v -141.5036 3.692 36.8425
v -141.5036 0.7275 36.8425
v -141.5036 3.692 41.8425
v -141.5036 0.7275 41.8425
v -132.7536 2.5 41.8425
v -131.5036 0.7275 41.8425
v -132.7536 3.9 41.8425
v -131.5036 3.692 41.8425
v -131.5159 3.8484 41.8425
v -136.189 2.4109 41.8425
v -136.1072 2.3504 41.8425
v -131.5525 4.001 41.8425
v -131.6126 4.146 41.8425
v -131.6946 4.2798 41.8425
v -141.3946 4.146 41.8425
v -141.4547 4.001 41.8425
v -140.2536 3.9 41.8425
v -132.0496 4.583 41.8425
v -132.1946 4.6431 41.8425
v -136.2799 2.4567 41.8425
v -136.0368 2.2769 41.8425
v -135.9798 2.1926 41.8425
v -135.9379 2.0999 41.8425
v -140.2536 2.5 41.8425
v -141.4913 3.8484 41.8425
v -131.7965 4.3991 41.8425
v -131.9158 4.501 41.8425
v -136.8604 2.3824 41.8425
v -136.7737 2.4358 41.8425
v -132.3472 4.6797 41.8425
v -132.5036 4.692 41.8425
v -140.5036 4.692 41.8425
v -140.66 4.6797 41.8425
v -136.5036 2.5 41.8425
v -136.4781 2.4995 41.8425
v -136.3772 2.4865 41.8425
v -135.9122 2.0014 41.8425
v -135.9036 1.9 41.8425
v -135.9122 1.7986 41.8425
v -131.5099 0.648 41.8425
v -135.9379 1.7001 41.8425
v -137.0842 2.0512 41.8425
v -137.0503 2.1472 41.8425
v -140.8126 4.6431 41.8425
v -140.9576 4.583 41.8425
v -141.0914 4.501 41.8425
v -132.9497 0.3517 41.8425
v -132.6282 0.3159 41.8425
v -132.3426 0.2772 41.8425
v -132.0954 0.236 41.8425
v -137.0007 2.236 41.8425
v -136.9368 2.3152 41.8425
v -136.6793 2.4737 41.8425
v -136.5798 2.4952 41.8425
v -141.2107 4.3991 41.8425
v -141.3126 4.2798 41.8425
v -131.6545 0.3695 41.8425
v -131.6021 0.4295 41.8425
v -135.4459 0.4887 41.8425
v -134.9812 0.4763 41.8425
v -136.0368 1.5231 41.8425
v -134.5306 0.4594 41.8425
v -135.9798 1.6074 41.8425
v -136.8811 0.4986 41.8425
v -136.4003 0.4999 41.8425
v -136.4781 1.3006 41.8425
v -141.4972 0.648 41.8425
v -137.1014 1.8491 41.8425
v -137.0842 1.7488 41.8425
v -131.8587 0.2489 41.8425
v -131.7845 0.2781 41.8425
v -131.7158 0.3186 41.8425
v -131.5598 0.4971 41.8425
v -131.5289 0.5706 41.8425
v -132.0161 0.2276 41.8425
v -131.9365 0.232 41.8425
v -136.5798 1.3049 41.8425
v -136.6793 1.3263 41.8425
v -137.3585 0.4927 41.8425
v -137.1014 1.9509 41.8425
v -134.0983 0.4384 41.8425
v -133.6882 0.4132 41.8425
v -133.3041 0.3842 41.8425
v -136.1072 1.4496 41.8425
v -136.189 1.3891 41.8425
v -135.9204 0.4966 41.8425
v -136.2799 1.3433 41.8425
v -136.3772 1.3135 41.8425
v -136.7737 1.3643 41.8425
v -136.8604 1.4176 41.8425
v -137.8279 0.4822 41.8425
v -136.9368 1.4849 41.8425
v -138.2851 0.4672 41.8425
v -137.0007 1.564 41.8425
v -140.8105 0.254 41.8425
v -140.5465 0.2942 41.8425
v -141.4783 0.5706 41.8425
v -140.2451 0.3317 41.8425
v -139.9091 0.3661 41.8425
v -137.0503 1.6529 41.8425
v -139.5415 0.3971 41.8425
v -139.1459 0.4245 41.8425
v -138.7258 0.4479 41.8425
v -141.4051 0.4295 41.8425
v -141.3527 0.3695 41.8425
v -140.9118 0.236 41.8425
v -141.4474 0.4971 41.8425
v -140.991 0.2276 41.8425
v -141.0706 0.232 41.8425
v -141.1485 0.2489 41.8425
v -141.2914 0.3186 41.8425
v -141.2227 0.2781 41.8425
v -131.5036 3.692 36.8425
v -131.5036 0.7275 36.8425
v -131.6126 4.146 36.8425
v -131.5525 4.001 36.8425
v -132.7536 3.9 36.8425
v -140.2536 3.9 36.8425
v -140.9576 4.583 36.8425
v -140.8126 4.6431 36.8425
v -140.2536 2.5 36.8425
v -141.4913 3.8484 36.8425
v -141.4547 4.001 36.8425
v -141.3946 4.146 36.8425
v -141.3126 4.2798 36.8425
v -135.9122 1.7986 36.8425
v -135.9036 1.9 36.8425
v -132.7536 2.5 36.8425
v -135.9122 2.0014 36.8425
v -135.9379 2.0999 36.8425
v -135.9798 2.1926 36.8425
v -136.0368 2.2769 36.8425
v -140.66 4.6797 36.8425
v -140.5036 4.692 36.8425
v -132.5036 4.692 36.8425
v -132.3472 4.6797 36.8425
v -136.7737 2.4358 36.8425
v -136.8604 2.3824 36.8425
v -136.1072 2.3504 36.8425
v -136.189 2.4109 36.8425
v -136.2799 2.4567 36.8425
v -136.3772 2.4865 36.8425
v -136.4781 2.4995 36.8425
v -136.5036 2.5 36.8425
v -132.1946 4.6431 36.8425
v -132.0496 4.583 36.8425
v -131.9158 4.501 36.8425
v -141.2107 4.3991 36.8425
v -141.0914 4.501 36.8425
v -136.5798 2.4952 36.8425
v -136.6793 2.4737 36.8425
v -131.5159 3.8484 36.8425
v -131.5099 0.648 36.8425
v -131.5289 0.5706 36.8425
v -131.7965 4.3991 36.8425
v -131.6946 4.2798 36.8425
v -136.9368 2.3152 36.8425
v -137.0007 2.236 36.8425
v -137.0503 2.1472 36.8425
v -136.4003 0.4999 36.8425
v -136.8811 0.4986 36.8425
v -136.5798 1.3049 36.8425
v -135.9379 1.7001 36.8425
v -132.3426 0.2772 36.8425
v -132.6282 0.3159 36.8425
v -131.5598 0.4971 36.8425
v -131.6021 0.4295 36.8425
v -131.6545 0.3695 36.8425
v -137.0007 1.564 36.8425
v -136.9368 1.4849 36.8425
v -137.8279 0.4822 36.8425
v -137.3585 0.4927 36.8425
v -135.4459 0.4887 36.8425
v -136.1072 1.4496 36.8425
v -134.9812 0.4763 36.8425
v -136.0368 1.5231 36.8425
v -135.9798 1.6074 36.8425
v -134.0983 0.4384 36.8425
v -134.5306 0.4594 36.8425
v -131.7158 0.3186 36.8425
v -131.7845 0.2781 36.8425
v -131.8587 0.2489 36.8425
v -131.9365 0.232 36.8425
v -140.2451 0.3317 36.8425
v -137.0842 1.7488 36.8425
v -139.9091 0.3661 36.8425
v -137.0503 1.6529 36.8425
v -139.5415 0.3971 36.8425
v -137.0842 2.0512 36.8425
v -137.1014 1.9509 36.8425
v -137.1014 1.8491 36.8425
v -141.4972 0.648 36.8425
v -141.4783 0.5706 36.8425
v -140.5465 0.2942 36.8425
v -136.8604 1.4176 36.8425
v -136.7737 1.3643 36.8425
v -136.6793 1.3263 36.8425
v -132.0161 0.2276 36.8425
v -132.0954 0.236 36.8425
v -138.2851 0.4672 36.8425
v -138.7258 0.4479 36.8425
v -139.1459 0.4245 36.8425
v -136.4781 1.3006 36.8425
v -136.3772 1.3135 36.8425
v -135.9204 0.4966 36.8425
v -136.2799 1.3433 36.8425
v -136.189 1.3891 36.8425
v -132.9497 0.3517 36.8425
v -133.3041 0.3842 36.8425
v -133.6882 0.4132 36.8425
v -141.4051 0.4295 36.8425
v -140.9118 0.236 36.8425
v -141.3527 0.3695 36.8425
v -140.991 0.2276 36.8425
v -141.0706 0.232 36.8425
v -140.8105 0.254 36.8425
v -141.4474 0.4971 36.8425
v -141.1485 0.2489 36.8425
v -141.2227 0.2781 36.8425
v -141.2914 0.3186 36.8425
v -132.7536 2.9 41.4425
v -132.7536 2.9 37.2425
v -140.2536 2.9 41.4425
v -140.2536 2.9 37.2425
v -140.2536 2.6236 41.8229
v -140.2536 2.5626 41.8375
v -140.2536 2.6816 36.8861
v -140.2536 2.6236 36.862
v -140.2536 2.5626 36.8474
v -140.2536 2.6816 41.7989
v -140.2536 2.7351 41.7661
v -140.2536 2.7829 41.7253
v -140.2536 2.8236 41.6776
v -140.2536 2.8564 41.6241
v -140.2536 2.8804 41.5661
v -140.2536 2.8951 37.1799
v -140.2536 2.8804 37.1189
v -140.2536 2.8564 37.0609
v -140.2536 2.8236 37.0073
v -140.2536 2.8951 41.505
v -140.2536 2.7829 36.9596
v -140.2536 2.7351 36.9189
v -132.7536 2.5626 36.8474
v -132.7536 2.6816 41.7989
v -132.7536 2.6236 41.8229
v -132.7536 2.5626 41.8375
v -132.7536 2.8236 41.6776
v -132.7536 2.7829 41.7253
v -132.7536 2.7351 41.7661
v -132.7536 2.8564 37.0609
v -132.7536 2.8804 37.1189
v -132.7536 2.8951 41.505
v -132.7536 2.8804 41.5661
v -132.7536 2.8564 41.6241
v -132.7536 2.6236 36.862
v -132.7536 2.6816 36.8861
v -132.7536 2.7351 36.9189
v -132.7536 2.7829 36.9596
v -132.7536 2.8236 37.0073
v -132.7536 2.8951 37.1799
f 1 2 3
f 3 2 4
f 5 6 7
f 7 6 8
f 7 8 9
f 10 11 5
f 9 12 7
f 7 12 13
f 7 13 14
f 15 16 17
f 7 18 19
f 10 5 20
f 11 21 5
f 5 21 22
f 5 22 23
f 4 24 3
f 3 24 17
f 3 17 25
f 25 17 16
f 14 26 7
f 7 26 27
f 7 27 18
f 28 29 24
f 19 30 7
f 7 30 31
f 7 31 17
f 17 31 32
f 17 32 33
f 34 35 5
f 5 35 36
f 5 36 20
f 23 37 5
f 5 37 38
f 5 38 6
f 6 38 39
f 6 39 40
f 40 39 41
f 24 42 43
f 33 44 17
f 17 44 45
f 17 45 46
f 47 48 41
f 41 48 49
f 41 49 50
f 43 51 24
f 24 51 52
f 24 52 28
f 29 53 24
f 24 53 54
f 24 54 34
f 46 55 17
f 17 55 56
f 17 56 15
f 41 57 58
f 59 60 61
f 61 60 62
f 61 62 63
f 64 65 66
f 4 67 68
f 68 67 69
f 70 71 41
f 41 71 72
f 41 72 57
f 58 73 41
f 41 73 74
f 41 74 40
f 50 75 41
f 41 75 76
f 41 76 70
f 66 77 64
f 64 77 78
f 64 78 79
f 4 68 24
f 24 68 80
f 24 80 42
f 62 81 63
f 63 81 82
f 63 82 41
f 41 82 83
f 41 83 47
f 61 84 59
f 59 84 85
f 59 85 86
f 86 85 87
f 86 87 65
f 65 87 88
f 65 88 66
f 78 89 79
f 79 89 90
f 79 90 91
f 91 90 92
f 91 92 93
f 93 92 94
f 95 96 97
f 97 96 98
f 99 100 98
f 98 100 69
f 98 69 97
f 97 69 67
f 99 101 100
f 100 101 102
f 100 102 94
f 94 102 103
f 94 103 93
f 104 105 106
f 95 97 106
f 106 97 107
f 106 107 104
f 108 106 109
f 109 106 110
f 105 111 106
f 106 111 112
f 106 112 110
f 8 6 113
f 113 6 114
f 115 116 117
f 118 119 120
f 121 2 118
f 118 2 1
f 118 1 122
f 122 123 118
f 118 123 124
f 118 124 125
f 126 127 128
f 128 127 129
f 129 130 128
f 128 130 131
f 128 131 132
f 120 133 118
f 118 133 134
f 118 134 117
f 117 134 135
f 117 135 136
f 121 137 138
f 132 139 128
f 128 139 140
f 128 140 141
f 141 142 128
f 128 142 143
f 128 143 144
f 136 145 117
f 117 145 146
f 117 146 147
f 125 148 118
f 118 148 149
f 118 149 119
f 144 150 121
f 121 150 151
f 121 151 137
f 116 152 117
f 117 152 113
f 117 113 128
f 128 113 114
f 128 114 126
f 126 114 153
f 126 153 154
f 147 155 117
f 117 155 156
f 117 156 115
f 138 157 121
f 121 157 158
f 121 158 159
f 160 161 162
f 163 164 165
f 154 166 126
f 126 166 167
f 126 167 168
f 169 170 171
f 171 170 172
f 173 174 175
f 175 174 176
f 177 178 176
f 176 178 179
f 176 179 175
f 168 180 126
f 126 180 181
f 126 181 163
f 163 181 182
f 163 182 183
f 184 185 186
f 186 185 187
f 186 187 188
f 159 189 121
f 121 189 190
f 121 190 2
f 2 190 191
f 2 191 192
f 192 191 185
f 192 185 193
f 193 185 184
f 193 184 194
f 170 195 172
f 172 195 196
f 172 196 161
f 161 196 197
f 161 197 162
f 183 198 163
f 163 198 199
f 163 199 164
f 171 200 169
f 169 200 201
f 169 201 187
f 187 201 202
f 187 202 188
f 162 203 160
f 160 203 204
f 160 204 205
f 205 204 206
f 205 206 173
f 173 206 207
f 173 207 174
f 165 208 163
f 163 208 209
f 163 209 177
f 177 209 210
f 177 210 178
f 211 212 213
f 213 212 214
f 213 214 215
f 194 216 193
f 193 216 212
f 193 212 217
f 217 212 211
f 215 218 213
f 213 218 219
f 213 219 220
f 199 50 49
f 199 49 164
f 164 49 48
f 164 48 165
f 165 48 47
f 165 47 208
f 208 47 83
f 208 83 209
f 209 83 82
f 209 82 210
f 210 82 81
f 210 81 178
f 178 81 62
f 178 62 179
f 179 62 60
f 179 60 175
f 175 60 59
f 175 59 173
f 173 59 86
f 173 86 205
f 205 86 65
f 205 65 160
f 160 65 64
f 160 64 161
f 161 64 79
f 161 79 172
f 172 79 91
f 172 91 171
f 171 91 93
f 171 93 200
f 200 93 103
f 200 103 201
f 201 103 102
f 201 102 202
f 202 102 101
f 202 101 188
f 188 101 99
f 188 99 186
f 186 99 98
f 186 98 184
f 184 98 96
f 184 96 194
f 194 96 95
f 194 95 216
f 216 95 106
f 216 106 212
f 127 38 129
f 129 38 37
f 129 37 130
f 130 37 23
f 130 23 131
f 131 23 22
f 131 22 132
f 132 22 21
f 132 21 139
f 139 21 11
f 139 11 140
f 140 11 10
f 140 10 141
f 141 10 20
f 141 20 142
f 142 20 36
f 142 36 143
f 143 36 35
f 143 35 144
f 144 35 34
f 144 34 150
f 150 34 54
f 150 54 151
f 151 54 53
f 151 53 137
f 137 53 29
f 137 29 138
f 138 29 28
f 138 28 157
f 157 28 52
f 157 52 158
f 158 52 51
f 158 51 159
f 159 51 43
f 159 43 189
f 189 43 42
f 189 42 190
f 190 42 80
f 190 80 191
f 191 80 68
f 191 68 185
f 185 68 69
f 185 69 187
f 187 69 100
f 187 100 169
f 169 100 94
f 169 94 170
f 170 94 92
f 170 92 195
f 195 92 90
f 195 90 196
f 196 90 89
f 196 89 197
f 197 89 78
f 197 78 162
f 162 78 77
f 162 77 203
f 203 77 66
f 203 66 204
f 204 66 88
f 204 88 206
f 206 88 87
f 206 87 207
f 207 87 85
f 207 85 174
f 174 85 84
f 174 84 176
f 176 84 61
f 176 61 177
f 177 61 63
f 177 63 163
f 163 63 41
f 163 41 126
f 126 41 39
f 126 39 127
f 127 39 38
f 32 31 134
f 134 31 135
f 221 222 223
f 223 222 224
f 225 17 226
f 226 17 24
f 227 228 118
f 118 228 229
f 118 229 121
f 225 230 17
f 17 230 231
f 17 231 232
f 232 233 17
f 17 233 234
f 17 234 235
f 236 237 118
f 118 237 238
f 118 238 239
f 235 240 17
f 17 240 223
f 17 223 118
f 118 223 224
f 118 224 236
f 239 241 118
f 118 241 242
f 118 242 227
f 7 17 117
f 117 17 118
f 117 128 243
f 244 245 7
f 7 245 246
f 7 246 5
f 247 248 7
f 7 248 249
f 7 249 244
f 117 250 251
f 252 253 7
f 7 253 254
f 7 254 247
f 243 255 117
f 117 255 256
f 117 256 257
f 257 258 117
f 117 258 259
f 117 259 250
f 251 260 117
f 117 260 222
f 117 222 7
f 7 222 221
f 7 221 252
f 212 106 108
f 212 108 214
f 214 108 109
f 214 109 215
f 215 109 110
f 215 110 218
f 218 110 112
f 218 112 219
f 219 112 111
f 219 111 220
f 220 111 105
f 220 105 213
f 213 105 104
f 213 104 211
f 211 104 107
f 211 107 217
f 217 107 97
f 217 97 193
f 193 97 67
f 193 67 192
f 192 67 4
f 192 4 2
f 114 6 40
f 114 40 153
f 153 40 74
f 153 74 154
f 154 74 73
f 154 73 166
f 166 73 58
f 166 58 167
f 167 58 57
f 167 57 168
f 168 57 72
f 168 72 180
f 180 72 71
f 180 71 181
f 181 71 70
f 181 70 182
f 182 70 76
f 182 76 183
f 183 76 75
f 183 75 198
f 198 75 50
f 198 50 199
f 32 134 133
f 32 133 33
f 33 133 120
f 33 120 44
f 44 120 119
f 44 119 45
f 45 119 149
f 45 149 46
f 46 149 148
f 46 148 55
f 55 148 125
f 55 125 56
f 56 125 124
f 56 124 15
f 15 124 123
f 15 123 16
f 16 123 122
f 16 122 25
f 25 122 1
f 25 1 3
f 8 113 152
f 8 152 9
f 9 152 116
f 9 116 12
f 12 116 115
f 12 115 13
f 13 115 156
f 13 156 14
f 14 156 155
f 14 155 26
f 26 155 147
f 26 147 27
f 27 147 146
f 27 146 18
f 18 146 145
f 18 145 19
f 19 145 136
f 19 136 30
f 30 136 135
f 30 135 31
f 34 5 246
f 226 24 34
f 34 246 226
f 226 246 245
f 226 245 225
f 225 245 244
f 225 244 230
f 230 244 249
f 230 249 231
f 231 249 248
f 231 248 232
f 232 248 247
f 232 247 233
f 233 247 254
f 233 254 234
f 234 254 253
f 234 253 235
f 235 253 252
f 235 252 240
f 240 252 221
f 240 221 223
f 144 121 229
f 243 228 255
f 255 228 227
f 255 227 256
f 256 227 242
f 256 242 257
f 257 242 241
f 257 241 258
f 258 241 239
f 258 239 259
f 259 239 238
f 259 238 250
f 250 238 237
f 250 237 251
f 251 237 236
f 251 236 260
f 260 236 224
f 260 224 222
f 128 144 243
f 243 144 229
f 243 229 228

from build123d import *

# Parameters (mm, degrees)
SKETCH1_W           = 10
SKETCH1_H           = 5
BOSS_EXTRUDE1_DEPTH = 5
SKETCH2_W           = 10
SKETCH2_H           = 0.30799953
SKETCH2_W_2         = 7.5
SKETCH2_H_2         = 1
SKETCH2_R           = 0.6
CUT_EXTRUDE1_DEPTH  = 10
FILLET1_START       = 36
FILLET1_DEPTH       = 7
FILLET2_R           = 1
FILLET3_R           = 0.4


with BuildPart() as part:
    # Sketch1 → Boss-Extrude1 (new body)
    with BuildSketch(Plane(origin=(0, 0, 0), x_dir=(1, 0, 0), z_dir=(0, 1, 0))):
        with Locations((-136.503596575, -39.342461353)):
            Rectangle(SKETCH1_W, SKETCH1_H)
    extrude(amount=BOSS_EXTRUDE1_DEPTH)

    # Sketch2 → Cut-Extrude1 (cut)
    with BuildSketch(Plane.XY.offset(41.842461353)):
        with Locations((-136.503596575, 4.846000235)):
            Rectangle(SKETCH2_W, SKETCH2_H)
        with Locations((-136.503596575, 3.4)):
            Rectangle(SKETCH2_W_2, SKETCH2_H_2)
        with Locations((-136.503596575, 1.9)):
            Circle(SKETCH2_R)
        with BuildLine():
            add(Edge.make_bspline(
                [(-131.503596575, 0), (-131.503596575, 0.5), (-136.503596575, 0.5)],
                knots=[0, 0, 0, 1.570796327, 1.570796327, 1.570796327], degree=2, weights=[1, 0.707106781, 1]))
            add(Edge.make_bspline(
                [(-136.503596575, 0.5), (-148.574664386, 0.5), (-140.03913048, -0.353553391), (-131.503596575, -1.207106781), (-131.503596575, 0)],
                knots=[1.570796327, 1.570796327, 1.570796327, 3.926990817, 3.926990817, 6.283185307, 6.283185307, 6.283185307], degree=2, weights=[1, 0.382683432, 1, 0.382683432, 1]))
        make_face()
    extrude(amount=-CUT_EXTRUDE1_DEPTH, mode=Mode.SUBTRACT)

    # Fillet1: read off the stored shape, not the designer's step
    # Fillet1 outline → Fillet1 (cut)
    with BuildSketch(Plane.XY.offset(FILLET1_START)):
        with BuildLine():
            ThreePointArc((-131.503596575, 0.727461803), (-131.684151383, 0.342812912), (-132.095415653, 0.235964848))
            add(Edge.make_bspline(
                [(-131.503596575, 0), (-131.503596575, 0.125404077), (-132.095415653, 0.235964848)],
                knots=[0, 0, 0, 0.504721097, 0.504721097, 0.504721097], degree=2, weights=[1, 0.905888889, 0.872256483]))
            Line((-131.503596575, 0), (-131.503596575, 0.727461803))
        make_face()
        with BuildLine():
            ThreePointArc((-140.911777496, 0.235964848), (-141.323041766, 0.342812912), (-141.503596575, 0.727461803))
            Line((-141.503596575, 0.727461803), (-141.503596575, 0))
            add(Edge.make_bspline(
                [(-140.911777496, 0.235964848), (-141.503596575, 0.125404077), (-141.503596575, 0)],
                knots=[2.636871556, 2.636871556, 2.636871556, 3.141592654, 3.141592654, 3.141592654], degree=2, weights=[0.872256483, 0.905888889, 1]))
        make_face()
    extrude(amount=FILLET1_DEPTH, mode=Mode.SUBTRACT)

    # Fillet2
    fillet2_edges = [part.edges().sort_by_distance(p)[0] for p in [
        (-131.503596575, 4.69200047, 39.342461353),
        (-141.503596575, 4.69200047, 39.342461353),
    ]]
    fillet(fillet2_edges, radius=FILLET2_R)

    # Fillet3
    fillet3_edges = [part.edges().sort_by_distance(p)[0] for p in [
        (-136.503596575, 2.9, 36.842461353),
        (-136.503596575, 2.9, 41.842461353),
    ]]
    fillet(fillet3_edges, radius=FILLET3_R - 0.0001)  # a hair under: the kernel refuses the full size


solid = part.part
